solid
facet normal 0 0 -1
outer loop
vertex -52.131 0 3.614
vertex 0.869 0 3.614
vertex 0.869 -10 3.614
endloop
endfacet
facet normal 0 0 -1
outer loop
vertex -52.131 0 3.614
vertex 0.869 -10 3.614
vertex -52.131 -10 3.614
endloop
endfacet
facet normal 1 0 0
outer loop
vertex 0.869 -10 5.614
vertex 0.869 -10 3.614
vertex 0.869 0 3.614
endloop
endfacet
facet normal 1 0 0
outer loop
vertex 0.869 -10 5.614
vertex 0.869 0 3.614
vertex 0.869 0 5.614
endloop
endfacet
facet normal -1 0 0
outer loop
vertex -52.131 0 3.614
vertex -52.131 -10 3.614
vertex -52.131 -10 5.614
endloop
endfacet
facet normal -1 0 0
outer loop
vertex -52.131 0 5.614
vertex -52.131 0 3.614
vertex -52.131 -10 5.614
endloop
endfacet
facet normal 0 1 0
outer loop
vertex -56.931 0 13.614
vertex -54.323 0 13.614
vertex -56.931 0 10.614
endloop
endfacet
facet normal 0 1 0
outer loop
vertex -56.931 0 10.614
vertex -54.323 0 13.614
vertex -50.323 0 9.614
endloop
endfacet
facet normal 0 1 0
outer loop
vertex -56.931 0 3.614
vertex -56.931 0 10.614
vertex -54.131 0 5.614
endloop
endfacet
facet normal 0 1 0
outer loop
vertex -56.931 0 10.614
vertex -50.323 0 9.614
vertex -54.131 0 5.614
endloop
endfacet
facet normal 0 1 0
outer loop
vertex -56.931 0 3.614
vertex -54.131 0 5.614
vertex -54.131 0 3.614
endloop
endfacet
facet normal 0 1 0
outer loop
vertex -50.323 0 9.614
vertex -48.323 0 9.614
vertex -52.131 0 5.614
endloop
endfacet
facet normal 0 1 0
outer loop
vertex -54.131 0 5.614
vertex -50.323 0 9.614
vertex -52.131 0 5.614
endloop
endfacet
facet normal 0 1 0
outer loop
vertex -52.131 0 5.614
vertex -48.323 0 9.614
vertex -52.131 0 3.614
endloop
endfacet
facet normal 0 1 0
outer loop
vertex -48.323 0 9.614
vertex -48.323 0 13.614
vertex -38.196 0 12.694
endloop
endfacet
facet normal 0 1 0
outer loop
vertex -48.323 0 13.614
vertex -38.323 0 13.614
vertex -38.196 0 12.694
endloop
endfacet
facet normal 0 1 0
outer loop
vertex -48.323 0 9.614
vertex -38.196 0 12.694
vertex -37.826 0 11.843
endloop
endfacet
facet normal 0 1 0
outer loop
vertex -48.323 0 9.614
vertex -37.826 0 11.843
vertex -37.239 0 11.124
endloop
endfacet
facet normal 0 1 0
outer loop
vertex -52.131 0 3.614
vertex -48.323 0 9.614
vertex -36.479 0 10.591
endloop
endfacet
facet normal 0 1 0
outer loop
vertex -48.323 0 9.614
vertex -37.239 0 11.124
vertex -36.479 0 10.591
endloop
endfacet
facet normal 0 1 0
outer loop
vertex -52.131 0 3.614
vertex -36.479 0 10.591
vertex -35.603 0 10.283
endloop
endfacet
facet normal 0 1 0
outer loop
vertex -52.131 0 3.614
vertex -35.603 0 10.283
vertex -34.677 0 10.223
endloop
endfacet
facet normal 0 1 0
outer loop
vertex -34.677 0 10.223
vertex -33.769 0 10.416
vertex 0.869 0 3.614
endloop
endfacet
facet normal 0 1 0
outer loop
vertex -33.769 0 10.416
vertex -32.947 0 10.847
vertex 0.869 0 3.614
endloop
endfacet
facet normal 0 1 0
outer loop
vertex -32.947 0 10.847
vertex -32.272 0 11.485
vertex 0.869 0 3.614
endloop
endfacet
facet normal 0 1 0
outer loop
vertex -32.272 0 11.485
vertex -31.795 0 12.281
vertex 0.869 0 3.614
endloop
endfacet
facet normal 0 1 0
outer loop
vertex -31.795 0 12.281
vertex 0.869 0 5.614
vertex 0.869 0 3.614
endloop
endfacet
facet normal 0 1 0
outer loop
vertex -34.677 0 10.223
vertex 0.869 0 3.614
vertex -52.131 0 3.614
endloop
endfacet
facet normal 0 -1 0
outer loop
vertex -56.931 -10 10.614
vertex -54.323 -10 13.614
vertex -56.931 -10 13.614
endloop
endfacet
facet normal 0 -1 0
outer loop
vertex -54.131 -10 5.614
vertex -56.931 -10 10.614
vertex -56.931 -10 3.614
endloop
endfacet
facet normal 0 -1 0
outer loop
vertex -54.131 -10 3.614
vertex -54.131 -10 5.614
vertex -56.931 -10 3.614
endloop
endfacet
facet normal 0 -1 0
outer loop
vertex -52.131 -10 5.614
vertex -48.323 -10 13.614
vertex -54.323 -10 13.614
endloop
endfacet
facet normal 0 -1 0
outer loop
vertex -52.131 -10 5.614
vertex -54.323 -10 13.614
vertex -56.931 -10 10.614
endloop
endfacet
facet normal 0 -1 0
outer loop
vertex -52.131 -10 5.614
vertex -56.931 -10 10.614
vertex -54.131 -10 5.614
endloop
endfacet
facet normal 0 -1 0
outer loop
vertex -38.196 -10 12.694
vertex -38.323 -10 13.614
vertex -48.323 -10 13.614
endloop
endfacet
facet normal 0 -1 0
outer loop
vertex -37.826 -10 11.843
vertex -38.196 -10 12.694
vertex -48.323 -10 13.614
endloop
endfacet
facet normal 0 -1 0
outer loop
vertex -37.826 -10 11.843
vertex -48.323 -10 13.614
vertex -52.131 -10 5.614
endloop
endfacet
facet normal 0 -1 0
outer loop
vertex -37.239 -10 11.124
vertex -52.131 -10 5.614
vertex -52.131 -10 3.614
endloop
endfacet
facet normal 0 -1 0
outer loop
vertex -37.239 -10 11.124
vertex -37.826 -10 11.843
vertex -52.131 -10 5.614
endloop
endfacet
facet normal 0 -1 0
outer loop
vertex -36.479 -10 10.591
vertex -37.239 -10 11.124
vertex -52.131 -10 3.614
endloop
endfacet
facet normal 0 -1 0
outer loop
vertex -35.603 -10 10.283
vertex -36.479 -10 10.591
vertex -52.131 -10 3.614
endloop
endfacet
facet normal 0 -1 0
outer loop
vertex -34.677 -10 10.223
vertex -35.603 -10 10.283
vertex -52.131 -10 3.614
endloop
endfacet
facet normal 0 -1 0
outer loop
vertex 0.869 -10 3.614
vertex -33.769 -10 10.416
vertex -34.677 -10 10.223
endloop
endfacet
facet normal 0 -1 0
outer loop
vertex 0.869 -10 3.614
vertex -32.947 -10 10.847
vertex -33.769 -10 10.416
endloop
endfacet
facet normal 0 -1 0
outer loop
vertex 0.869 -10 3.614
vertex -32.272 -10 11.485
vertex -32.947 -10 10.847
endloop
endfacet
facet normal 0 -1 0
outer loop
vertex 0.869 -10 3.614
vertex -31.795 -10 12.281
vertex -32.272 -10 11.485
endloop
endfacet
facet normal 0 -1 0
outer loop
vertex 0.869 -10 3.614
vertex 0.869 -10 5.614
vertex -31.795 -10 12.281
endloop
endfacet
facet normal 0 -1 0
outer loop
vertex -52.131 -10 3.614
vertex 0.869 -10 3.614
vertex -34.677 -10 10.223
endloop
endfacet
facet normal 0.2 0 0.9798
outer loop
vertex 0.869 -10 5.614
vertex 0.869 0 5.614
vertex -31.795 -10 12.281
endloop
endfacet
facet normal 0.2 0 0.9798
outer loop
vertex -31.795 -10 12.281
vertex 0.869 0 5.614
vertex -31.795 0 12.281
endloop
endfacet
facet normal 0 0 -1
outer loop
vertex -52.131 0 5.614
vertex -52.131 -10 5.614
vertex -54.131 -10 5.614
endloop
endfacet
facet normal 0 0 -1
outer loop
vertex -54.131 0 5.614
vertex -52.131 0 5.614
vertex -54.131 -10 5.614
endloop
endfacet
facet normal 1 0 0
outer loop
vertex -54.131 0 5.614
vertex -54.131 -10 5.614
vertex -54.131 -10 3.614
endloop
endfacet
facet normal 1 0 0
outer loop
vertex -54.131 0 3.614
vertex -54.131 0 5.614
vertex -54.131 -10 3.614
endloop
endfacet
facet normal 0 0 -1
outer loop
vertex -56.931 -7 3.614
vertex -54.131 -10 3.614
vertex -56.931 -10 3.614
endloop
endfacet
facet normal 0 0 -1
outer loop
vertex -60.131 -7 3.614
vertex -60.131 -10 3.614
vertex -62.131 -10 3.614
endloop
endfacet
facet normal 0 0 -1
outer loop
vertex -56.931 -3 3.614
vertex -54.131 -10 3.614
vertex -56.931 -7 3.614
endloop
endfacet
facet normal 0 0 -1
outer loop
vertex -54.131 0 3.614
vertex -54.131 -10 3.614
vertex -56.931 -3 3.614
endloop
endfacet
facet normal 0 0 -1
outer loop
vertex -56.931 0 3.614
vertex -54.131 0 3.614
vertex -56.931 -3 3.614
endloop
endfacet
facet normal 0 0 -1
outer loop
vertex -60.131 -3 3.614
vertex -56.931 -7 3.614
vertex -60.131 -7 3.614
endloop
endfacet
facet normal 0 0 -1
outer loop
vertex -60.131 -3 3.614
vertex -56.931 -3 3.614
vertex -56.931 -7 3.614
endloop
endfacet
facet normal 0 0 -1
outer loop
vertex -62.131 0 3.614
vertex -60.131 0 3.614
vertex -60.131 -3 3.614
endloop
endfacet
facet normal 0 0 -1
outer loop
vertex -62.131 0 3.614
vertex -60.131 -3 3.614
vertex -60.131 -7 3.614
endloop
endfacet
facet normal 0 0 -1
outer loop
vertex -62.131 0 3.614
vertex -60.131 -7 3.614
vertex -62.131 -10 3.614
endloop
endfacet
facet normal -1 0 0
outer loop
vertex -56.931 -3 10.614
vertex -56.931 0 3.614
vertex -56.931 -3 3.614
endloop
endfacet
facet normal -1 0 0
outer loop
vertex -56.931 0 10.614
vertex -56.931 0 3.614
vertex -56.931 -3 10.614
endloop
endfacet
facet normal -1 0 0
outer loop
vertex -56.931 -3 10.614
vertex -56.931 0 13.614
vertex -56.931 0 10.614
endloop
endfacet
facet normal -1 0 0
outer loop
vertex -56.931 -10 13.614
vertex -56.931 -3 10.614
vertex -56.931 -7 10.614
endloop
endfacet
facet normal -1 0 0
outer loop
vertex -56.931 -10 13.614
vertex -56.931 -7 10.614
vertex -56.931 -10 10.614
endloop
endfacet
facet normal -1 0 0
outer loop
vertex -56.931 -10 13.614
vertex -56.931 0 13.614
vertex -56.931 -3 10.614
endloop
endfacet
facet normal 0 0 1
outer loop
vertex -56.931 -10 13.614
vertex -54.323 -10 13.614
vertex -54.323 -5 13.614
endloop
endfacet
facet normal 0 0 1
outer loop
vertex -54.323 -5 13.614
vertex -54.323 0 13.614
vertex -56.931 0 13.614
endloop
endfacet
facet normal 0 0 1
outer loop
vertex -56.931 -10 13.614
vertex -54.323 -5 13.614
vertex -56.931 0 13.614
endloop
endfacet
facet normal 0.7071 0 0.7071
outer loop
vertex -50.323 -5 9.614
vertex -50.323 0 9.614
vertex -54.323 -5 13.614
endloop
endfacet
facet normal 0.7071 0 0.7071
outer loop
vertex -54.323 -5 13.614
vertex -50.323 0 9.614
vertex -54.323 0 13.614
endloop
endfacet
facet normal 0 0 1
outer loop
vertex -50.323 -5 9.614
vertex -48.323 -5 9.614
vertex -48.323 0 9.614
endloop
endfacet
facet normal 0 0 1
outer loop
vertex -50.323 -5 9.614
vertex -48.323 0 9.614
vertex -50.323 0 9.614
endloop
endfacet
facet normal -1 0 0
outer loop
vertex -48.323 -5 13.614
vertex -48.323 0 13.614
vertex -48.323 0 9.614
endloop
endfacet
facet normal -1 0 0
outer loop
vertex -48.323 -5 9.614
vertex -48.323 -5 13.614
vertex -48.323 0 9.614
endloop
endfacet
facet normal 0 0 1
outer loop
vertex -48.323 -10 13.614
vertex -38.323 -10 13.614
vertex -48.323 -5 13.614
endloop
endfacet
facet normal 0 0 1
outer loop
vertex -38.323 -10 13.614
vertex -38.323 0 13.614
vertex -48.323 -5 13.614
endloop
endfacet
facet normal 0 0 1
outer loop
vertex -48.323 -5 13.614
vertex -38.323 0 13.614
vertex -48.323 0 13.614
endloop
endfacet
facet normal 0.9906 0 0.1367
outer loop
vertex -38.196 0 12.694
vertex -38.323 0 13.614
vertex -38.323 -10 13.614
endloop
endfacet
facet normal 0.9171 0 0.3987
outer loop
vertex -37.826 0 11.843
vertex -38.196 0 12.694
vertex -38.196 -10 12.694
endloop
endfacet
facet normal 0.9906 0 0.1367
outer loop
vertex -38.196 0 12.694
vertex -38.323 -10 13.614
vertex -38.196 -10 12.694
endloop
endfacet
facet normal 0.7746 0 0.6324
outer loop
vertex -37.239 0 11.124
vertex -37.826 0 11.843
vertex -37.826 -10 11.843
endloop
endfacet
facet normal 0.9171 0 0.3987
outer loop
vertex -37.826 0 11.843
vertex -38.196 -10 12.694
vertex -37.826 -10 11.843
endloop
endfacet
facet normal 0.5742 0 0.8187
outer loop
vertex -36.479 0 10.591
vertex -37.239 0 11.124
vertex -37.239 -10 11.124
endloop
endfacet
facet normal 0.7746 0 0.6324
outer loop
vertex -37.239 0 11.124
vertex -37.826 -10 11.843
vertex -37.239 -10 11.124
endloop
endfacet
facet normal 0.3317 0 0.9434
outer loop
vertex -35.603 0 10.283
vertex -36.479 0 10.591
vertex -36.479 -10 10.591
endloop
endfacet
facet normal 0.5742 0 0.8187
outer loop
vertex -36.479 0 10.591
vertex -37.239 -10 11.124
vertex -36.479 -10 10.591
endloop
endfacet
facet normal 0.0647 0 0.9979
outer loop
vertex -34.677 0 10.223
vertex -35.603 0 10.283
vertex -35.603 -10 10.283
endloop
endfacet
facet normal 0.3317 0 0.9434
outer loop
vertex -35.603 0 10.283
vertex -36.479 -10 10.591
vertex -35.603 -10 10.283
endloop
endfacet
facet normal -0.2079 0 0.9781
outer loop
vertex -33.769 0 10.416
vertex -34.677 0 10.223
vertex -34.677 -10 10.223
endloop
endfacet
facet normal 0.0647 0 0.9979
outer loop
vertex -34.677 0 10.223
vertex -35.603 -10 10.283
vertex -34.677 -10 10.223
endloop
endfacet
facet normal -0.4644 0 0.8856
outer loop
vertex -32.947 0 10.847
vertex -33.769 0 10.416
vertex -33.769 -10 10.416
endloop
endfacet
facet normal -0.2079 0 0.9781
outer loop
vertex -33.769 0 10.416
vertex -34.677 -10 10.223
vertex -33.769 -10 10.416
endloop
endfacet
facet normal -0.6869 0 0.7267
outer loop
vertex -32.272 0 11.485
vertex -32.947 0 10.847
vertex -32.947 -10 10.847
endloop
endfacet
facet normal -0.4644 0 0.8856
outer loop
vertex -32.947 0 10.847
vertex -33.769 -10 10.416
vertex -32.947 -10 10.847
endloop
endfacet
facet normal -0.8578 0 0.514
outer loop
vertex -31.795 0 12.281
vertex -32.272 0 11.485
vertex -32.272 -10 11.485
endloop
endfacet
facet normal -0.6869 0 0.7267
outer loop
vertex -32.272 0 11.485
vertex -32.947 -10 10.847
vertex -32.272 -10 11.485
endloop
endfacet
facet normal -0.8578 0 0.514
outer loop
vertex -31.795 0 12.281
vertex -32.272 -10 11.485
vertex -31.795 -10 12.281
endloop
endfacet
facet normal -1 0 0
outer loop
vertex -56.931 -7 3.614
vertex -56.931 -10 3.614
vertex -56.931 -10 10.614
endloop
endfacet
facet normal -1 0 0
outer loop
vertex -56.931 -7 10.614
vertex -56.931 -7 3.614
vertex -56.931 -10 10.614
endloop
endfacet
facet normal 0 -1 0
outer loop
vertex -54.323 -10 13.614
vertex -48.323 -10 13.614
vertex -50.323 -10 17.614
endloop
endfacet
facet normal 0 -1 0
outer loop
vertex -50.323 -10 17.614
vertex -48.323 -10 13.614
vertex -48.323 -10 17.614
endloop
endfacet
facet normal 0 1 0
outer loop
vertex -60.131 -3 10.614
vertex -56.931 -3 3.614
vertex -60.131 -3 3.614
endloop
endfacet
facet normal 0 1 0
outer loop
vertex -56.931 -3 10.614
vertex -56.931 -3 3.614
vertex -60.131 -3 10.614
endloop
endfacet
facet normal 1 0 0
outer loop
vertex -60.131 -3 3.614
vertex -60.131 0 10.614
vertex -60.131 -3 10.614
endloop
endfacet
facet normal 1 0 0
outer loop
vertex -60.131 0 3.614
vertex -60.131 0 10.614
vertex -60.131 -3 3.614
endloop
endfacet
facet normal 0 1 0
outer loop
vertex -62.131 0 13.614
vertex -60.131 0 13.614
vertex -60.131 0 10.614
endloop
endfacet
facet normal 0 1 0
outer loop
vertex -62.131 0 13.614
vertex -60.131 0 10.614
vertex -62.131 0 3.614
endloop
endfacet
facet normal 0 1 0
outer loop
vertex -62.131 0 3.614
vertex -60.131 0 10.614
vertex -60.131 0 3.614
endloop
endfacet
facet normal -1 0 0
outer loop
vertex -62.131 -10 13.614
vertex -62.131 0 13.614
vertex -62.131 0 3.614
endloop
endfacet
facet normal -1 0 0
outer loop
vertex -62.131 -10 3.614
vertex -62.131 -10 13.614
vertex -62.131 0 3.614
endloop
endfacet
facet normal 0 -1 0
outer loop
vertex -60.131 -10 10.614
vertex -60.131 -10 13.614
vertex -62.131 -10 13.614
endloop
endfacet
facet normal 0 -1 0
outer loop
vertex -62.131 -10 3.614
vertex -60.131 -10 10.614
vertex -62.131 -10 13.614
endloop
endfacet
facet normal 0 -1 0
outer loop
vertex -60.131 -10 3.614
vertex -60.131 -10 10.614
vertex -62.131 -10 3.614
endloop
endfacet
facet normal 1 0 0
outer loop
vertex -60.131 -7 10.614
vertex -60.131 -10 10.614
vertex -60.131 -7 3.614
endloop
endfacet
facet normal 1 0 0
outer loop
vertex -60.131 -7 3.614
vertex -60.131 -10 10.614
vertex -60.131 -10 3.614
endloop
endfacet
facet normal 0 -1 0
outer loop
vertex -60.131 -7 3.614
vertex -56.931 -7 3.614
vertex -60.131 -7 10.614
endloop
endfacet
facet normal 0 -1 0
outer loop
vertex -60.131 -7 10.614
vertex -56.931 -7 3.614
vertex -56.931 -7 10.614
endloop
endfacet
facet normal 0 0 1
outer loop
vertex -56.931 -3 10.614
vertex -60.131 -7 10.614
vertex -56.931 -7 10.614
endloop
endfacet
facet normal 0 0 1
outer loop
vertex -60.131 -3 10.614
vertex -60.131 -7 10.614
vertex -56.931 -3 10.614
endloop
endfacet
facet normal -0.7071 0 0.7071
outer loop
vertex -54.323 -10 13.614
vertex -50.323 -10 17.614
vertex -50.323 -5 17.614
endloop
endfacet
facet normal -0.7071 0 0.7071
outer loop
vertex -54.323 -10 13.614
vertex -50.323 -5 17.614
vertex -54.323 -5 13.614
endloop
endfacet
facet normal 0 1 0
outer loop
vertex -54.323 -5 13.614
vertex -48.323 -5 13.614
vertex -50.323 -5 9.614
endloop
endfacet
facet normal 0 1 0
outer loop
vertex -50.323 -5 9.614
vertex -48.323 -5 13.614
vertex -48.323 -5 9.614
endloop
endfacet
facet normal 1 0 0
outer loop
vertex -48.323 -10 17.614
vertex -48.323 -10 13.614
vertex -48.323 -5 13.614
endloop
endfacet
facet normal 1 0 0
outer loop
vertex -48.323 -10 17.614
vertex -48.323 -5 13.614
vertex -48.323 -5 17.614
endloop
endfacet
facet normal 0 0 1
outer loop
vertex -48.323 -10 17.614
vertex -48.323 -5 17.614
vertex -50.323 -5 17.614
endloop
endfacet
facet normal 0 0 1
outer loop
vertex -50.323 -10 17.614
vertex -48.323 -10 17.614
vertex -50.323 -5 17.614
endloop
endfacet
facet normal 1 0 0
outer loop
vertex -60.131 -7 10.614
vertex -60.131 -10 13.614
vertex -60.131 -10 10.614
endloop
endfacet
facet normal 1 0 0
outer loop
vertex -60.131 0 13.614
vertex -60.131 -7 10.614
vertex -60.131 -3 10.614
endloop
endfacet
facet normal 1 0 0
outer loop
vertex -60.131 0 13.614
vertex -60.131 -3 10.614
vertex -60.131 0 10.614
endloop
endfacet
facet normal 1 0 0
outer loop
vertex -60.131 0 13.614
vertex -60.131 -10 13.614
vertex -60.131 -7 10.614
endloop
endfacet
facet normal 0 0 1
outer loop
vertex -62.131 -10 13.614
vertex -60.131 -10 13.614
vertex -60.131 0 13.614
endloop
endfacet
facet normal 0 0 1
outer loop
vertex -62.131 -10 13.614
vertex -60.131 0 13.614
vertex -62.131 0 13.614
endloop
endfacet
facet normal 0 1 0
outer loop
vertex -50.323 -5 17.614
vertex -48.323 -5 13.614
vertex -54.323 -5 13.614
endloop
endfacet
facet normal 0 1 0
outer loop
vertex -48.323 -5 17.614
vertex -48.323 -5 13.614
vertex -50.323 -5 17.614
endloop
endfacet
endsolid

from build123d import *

# Parameters (mm, degrees)
PAD_DEPTH       = 10
SKETCH001_R     = 3.4
POCKET_DEPTH    = 10.001
PAD001_DEPTH    = 5
POCKET001_DEPTH = 5
SKETCH004_W     = 3.2
SKETCH004_H     = 10
POCKET002_DEPTH = 3
SKETCH005_W     = 3.2
SKETCH005_H     = 7
POCKET003_DEPTH = 3
SKETCH006_W     = 3.2
SKETCH006_H     = 7
POCKET004_DEPTH = 3


with BuildPart() as part:
    # Sketch → Pad (new body)
    with BuildSketch(Plane.XZ):
        Polygon((0.868689, 3.613865), (-52.131311, 3.613865), (-52.131311, 5.613865), (-54.131311, 5.613865), (-54.131311, 3.613865), (-62.131311, 3.613865), (-62.131311, 13.613865), (-38.323146, 13.613865), (0.868689, 5.613865), align=None)
    extrude(amount=PAD_DEPTH)

    # Sketch001 → Pocket (cut, through all)
    with BuildSketch(Plane.XZ.offset(10)):
        with Locations((-34.923146, 13.613865)):
            Circle(SKETCH001_R)
    extrude(amount=-POCKET_DEPTH, mode=Mode.SUBTRACT)

    # Sketch002 → Pad001 (new body)
    with BuildSketch(Plane.XZ.offset(10)):
        Polygon((-48.323146, 13.613865), (-48.323146, 17.613865), (-50.323146, 17.613865), (-54.323146, 13.613865), align=None)
    extrude(amount=-PAD001_DEPTH)

    # Sketch003 → Pocket001 (cut)
    with BuildSketch(Plane(origin=(0, 0, 0), x_dir=(1, 0, 0), z_dir=(0, 1, 0))):
        Polygon((-48.323146, -13.613865), (-48.323146, -9.613865), (-50.323146, -9.613865), (-54.323146, -13.613865), align=None)
    extrude(amount=-POCKET001_DEPTH, mode=Mode.SUBTRACT)

    # Sketch004 → Pocket002 (cut)
    with BuildSketch(Plane(origin=(0, 0, 13.613865), x_dir=(-1, 0, 0), z_dir=(0, 0, 1))):
        with Locations((58.531311, 5)):
            Rectangle(SKETCH004_W, SKETCH004_H)
    extrude(amount=-POCKET002_DEPTH, mode=Mode.SUBTRACT)

    # Sketch005 → Pocket003 (cut)
    with BuildSketch(Plane.XZ.offset(10)):
        with Locations((-58.531311, 7.113865)):
            Rectangle(SKETCH005_W, SKETCH005_H)
    extrude(amount=-POCKET003_DEPTH, mode=Mode.SUBTRACT)

    # Sketch006 → Pocket004 (cut)
    with BuildSketch(Plane(origin=(0, 0, 0), x_dir=(1, 0, 0), z_dir=(0, 1, 0))):
        with Locations((-58.531311, -7.113865)):
            Rectangle(SKETCH006_W, SKETCH006_H)
    extrude(amount=-POCKET004_DEPTH, mode=Mode.SUBTRACT)


solid = part.part
